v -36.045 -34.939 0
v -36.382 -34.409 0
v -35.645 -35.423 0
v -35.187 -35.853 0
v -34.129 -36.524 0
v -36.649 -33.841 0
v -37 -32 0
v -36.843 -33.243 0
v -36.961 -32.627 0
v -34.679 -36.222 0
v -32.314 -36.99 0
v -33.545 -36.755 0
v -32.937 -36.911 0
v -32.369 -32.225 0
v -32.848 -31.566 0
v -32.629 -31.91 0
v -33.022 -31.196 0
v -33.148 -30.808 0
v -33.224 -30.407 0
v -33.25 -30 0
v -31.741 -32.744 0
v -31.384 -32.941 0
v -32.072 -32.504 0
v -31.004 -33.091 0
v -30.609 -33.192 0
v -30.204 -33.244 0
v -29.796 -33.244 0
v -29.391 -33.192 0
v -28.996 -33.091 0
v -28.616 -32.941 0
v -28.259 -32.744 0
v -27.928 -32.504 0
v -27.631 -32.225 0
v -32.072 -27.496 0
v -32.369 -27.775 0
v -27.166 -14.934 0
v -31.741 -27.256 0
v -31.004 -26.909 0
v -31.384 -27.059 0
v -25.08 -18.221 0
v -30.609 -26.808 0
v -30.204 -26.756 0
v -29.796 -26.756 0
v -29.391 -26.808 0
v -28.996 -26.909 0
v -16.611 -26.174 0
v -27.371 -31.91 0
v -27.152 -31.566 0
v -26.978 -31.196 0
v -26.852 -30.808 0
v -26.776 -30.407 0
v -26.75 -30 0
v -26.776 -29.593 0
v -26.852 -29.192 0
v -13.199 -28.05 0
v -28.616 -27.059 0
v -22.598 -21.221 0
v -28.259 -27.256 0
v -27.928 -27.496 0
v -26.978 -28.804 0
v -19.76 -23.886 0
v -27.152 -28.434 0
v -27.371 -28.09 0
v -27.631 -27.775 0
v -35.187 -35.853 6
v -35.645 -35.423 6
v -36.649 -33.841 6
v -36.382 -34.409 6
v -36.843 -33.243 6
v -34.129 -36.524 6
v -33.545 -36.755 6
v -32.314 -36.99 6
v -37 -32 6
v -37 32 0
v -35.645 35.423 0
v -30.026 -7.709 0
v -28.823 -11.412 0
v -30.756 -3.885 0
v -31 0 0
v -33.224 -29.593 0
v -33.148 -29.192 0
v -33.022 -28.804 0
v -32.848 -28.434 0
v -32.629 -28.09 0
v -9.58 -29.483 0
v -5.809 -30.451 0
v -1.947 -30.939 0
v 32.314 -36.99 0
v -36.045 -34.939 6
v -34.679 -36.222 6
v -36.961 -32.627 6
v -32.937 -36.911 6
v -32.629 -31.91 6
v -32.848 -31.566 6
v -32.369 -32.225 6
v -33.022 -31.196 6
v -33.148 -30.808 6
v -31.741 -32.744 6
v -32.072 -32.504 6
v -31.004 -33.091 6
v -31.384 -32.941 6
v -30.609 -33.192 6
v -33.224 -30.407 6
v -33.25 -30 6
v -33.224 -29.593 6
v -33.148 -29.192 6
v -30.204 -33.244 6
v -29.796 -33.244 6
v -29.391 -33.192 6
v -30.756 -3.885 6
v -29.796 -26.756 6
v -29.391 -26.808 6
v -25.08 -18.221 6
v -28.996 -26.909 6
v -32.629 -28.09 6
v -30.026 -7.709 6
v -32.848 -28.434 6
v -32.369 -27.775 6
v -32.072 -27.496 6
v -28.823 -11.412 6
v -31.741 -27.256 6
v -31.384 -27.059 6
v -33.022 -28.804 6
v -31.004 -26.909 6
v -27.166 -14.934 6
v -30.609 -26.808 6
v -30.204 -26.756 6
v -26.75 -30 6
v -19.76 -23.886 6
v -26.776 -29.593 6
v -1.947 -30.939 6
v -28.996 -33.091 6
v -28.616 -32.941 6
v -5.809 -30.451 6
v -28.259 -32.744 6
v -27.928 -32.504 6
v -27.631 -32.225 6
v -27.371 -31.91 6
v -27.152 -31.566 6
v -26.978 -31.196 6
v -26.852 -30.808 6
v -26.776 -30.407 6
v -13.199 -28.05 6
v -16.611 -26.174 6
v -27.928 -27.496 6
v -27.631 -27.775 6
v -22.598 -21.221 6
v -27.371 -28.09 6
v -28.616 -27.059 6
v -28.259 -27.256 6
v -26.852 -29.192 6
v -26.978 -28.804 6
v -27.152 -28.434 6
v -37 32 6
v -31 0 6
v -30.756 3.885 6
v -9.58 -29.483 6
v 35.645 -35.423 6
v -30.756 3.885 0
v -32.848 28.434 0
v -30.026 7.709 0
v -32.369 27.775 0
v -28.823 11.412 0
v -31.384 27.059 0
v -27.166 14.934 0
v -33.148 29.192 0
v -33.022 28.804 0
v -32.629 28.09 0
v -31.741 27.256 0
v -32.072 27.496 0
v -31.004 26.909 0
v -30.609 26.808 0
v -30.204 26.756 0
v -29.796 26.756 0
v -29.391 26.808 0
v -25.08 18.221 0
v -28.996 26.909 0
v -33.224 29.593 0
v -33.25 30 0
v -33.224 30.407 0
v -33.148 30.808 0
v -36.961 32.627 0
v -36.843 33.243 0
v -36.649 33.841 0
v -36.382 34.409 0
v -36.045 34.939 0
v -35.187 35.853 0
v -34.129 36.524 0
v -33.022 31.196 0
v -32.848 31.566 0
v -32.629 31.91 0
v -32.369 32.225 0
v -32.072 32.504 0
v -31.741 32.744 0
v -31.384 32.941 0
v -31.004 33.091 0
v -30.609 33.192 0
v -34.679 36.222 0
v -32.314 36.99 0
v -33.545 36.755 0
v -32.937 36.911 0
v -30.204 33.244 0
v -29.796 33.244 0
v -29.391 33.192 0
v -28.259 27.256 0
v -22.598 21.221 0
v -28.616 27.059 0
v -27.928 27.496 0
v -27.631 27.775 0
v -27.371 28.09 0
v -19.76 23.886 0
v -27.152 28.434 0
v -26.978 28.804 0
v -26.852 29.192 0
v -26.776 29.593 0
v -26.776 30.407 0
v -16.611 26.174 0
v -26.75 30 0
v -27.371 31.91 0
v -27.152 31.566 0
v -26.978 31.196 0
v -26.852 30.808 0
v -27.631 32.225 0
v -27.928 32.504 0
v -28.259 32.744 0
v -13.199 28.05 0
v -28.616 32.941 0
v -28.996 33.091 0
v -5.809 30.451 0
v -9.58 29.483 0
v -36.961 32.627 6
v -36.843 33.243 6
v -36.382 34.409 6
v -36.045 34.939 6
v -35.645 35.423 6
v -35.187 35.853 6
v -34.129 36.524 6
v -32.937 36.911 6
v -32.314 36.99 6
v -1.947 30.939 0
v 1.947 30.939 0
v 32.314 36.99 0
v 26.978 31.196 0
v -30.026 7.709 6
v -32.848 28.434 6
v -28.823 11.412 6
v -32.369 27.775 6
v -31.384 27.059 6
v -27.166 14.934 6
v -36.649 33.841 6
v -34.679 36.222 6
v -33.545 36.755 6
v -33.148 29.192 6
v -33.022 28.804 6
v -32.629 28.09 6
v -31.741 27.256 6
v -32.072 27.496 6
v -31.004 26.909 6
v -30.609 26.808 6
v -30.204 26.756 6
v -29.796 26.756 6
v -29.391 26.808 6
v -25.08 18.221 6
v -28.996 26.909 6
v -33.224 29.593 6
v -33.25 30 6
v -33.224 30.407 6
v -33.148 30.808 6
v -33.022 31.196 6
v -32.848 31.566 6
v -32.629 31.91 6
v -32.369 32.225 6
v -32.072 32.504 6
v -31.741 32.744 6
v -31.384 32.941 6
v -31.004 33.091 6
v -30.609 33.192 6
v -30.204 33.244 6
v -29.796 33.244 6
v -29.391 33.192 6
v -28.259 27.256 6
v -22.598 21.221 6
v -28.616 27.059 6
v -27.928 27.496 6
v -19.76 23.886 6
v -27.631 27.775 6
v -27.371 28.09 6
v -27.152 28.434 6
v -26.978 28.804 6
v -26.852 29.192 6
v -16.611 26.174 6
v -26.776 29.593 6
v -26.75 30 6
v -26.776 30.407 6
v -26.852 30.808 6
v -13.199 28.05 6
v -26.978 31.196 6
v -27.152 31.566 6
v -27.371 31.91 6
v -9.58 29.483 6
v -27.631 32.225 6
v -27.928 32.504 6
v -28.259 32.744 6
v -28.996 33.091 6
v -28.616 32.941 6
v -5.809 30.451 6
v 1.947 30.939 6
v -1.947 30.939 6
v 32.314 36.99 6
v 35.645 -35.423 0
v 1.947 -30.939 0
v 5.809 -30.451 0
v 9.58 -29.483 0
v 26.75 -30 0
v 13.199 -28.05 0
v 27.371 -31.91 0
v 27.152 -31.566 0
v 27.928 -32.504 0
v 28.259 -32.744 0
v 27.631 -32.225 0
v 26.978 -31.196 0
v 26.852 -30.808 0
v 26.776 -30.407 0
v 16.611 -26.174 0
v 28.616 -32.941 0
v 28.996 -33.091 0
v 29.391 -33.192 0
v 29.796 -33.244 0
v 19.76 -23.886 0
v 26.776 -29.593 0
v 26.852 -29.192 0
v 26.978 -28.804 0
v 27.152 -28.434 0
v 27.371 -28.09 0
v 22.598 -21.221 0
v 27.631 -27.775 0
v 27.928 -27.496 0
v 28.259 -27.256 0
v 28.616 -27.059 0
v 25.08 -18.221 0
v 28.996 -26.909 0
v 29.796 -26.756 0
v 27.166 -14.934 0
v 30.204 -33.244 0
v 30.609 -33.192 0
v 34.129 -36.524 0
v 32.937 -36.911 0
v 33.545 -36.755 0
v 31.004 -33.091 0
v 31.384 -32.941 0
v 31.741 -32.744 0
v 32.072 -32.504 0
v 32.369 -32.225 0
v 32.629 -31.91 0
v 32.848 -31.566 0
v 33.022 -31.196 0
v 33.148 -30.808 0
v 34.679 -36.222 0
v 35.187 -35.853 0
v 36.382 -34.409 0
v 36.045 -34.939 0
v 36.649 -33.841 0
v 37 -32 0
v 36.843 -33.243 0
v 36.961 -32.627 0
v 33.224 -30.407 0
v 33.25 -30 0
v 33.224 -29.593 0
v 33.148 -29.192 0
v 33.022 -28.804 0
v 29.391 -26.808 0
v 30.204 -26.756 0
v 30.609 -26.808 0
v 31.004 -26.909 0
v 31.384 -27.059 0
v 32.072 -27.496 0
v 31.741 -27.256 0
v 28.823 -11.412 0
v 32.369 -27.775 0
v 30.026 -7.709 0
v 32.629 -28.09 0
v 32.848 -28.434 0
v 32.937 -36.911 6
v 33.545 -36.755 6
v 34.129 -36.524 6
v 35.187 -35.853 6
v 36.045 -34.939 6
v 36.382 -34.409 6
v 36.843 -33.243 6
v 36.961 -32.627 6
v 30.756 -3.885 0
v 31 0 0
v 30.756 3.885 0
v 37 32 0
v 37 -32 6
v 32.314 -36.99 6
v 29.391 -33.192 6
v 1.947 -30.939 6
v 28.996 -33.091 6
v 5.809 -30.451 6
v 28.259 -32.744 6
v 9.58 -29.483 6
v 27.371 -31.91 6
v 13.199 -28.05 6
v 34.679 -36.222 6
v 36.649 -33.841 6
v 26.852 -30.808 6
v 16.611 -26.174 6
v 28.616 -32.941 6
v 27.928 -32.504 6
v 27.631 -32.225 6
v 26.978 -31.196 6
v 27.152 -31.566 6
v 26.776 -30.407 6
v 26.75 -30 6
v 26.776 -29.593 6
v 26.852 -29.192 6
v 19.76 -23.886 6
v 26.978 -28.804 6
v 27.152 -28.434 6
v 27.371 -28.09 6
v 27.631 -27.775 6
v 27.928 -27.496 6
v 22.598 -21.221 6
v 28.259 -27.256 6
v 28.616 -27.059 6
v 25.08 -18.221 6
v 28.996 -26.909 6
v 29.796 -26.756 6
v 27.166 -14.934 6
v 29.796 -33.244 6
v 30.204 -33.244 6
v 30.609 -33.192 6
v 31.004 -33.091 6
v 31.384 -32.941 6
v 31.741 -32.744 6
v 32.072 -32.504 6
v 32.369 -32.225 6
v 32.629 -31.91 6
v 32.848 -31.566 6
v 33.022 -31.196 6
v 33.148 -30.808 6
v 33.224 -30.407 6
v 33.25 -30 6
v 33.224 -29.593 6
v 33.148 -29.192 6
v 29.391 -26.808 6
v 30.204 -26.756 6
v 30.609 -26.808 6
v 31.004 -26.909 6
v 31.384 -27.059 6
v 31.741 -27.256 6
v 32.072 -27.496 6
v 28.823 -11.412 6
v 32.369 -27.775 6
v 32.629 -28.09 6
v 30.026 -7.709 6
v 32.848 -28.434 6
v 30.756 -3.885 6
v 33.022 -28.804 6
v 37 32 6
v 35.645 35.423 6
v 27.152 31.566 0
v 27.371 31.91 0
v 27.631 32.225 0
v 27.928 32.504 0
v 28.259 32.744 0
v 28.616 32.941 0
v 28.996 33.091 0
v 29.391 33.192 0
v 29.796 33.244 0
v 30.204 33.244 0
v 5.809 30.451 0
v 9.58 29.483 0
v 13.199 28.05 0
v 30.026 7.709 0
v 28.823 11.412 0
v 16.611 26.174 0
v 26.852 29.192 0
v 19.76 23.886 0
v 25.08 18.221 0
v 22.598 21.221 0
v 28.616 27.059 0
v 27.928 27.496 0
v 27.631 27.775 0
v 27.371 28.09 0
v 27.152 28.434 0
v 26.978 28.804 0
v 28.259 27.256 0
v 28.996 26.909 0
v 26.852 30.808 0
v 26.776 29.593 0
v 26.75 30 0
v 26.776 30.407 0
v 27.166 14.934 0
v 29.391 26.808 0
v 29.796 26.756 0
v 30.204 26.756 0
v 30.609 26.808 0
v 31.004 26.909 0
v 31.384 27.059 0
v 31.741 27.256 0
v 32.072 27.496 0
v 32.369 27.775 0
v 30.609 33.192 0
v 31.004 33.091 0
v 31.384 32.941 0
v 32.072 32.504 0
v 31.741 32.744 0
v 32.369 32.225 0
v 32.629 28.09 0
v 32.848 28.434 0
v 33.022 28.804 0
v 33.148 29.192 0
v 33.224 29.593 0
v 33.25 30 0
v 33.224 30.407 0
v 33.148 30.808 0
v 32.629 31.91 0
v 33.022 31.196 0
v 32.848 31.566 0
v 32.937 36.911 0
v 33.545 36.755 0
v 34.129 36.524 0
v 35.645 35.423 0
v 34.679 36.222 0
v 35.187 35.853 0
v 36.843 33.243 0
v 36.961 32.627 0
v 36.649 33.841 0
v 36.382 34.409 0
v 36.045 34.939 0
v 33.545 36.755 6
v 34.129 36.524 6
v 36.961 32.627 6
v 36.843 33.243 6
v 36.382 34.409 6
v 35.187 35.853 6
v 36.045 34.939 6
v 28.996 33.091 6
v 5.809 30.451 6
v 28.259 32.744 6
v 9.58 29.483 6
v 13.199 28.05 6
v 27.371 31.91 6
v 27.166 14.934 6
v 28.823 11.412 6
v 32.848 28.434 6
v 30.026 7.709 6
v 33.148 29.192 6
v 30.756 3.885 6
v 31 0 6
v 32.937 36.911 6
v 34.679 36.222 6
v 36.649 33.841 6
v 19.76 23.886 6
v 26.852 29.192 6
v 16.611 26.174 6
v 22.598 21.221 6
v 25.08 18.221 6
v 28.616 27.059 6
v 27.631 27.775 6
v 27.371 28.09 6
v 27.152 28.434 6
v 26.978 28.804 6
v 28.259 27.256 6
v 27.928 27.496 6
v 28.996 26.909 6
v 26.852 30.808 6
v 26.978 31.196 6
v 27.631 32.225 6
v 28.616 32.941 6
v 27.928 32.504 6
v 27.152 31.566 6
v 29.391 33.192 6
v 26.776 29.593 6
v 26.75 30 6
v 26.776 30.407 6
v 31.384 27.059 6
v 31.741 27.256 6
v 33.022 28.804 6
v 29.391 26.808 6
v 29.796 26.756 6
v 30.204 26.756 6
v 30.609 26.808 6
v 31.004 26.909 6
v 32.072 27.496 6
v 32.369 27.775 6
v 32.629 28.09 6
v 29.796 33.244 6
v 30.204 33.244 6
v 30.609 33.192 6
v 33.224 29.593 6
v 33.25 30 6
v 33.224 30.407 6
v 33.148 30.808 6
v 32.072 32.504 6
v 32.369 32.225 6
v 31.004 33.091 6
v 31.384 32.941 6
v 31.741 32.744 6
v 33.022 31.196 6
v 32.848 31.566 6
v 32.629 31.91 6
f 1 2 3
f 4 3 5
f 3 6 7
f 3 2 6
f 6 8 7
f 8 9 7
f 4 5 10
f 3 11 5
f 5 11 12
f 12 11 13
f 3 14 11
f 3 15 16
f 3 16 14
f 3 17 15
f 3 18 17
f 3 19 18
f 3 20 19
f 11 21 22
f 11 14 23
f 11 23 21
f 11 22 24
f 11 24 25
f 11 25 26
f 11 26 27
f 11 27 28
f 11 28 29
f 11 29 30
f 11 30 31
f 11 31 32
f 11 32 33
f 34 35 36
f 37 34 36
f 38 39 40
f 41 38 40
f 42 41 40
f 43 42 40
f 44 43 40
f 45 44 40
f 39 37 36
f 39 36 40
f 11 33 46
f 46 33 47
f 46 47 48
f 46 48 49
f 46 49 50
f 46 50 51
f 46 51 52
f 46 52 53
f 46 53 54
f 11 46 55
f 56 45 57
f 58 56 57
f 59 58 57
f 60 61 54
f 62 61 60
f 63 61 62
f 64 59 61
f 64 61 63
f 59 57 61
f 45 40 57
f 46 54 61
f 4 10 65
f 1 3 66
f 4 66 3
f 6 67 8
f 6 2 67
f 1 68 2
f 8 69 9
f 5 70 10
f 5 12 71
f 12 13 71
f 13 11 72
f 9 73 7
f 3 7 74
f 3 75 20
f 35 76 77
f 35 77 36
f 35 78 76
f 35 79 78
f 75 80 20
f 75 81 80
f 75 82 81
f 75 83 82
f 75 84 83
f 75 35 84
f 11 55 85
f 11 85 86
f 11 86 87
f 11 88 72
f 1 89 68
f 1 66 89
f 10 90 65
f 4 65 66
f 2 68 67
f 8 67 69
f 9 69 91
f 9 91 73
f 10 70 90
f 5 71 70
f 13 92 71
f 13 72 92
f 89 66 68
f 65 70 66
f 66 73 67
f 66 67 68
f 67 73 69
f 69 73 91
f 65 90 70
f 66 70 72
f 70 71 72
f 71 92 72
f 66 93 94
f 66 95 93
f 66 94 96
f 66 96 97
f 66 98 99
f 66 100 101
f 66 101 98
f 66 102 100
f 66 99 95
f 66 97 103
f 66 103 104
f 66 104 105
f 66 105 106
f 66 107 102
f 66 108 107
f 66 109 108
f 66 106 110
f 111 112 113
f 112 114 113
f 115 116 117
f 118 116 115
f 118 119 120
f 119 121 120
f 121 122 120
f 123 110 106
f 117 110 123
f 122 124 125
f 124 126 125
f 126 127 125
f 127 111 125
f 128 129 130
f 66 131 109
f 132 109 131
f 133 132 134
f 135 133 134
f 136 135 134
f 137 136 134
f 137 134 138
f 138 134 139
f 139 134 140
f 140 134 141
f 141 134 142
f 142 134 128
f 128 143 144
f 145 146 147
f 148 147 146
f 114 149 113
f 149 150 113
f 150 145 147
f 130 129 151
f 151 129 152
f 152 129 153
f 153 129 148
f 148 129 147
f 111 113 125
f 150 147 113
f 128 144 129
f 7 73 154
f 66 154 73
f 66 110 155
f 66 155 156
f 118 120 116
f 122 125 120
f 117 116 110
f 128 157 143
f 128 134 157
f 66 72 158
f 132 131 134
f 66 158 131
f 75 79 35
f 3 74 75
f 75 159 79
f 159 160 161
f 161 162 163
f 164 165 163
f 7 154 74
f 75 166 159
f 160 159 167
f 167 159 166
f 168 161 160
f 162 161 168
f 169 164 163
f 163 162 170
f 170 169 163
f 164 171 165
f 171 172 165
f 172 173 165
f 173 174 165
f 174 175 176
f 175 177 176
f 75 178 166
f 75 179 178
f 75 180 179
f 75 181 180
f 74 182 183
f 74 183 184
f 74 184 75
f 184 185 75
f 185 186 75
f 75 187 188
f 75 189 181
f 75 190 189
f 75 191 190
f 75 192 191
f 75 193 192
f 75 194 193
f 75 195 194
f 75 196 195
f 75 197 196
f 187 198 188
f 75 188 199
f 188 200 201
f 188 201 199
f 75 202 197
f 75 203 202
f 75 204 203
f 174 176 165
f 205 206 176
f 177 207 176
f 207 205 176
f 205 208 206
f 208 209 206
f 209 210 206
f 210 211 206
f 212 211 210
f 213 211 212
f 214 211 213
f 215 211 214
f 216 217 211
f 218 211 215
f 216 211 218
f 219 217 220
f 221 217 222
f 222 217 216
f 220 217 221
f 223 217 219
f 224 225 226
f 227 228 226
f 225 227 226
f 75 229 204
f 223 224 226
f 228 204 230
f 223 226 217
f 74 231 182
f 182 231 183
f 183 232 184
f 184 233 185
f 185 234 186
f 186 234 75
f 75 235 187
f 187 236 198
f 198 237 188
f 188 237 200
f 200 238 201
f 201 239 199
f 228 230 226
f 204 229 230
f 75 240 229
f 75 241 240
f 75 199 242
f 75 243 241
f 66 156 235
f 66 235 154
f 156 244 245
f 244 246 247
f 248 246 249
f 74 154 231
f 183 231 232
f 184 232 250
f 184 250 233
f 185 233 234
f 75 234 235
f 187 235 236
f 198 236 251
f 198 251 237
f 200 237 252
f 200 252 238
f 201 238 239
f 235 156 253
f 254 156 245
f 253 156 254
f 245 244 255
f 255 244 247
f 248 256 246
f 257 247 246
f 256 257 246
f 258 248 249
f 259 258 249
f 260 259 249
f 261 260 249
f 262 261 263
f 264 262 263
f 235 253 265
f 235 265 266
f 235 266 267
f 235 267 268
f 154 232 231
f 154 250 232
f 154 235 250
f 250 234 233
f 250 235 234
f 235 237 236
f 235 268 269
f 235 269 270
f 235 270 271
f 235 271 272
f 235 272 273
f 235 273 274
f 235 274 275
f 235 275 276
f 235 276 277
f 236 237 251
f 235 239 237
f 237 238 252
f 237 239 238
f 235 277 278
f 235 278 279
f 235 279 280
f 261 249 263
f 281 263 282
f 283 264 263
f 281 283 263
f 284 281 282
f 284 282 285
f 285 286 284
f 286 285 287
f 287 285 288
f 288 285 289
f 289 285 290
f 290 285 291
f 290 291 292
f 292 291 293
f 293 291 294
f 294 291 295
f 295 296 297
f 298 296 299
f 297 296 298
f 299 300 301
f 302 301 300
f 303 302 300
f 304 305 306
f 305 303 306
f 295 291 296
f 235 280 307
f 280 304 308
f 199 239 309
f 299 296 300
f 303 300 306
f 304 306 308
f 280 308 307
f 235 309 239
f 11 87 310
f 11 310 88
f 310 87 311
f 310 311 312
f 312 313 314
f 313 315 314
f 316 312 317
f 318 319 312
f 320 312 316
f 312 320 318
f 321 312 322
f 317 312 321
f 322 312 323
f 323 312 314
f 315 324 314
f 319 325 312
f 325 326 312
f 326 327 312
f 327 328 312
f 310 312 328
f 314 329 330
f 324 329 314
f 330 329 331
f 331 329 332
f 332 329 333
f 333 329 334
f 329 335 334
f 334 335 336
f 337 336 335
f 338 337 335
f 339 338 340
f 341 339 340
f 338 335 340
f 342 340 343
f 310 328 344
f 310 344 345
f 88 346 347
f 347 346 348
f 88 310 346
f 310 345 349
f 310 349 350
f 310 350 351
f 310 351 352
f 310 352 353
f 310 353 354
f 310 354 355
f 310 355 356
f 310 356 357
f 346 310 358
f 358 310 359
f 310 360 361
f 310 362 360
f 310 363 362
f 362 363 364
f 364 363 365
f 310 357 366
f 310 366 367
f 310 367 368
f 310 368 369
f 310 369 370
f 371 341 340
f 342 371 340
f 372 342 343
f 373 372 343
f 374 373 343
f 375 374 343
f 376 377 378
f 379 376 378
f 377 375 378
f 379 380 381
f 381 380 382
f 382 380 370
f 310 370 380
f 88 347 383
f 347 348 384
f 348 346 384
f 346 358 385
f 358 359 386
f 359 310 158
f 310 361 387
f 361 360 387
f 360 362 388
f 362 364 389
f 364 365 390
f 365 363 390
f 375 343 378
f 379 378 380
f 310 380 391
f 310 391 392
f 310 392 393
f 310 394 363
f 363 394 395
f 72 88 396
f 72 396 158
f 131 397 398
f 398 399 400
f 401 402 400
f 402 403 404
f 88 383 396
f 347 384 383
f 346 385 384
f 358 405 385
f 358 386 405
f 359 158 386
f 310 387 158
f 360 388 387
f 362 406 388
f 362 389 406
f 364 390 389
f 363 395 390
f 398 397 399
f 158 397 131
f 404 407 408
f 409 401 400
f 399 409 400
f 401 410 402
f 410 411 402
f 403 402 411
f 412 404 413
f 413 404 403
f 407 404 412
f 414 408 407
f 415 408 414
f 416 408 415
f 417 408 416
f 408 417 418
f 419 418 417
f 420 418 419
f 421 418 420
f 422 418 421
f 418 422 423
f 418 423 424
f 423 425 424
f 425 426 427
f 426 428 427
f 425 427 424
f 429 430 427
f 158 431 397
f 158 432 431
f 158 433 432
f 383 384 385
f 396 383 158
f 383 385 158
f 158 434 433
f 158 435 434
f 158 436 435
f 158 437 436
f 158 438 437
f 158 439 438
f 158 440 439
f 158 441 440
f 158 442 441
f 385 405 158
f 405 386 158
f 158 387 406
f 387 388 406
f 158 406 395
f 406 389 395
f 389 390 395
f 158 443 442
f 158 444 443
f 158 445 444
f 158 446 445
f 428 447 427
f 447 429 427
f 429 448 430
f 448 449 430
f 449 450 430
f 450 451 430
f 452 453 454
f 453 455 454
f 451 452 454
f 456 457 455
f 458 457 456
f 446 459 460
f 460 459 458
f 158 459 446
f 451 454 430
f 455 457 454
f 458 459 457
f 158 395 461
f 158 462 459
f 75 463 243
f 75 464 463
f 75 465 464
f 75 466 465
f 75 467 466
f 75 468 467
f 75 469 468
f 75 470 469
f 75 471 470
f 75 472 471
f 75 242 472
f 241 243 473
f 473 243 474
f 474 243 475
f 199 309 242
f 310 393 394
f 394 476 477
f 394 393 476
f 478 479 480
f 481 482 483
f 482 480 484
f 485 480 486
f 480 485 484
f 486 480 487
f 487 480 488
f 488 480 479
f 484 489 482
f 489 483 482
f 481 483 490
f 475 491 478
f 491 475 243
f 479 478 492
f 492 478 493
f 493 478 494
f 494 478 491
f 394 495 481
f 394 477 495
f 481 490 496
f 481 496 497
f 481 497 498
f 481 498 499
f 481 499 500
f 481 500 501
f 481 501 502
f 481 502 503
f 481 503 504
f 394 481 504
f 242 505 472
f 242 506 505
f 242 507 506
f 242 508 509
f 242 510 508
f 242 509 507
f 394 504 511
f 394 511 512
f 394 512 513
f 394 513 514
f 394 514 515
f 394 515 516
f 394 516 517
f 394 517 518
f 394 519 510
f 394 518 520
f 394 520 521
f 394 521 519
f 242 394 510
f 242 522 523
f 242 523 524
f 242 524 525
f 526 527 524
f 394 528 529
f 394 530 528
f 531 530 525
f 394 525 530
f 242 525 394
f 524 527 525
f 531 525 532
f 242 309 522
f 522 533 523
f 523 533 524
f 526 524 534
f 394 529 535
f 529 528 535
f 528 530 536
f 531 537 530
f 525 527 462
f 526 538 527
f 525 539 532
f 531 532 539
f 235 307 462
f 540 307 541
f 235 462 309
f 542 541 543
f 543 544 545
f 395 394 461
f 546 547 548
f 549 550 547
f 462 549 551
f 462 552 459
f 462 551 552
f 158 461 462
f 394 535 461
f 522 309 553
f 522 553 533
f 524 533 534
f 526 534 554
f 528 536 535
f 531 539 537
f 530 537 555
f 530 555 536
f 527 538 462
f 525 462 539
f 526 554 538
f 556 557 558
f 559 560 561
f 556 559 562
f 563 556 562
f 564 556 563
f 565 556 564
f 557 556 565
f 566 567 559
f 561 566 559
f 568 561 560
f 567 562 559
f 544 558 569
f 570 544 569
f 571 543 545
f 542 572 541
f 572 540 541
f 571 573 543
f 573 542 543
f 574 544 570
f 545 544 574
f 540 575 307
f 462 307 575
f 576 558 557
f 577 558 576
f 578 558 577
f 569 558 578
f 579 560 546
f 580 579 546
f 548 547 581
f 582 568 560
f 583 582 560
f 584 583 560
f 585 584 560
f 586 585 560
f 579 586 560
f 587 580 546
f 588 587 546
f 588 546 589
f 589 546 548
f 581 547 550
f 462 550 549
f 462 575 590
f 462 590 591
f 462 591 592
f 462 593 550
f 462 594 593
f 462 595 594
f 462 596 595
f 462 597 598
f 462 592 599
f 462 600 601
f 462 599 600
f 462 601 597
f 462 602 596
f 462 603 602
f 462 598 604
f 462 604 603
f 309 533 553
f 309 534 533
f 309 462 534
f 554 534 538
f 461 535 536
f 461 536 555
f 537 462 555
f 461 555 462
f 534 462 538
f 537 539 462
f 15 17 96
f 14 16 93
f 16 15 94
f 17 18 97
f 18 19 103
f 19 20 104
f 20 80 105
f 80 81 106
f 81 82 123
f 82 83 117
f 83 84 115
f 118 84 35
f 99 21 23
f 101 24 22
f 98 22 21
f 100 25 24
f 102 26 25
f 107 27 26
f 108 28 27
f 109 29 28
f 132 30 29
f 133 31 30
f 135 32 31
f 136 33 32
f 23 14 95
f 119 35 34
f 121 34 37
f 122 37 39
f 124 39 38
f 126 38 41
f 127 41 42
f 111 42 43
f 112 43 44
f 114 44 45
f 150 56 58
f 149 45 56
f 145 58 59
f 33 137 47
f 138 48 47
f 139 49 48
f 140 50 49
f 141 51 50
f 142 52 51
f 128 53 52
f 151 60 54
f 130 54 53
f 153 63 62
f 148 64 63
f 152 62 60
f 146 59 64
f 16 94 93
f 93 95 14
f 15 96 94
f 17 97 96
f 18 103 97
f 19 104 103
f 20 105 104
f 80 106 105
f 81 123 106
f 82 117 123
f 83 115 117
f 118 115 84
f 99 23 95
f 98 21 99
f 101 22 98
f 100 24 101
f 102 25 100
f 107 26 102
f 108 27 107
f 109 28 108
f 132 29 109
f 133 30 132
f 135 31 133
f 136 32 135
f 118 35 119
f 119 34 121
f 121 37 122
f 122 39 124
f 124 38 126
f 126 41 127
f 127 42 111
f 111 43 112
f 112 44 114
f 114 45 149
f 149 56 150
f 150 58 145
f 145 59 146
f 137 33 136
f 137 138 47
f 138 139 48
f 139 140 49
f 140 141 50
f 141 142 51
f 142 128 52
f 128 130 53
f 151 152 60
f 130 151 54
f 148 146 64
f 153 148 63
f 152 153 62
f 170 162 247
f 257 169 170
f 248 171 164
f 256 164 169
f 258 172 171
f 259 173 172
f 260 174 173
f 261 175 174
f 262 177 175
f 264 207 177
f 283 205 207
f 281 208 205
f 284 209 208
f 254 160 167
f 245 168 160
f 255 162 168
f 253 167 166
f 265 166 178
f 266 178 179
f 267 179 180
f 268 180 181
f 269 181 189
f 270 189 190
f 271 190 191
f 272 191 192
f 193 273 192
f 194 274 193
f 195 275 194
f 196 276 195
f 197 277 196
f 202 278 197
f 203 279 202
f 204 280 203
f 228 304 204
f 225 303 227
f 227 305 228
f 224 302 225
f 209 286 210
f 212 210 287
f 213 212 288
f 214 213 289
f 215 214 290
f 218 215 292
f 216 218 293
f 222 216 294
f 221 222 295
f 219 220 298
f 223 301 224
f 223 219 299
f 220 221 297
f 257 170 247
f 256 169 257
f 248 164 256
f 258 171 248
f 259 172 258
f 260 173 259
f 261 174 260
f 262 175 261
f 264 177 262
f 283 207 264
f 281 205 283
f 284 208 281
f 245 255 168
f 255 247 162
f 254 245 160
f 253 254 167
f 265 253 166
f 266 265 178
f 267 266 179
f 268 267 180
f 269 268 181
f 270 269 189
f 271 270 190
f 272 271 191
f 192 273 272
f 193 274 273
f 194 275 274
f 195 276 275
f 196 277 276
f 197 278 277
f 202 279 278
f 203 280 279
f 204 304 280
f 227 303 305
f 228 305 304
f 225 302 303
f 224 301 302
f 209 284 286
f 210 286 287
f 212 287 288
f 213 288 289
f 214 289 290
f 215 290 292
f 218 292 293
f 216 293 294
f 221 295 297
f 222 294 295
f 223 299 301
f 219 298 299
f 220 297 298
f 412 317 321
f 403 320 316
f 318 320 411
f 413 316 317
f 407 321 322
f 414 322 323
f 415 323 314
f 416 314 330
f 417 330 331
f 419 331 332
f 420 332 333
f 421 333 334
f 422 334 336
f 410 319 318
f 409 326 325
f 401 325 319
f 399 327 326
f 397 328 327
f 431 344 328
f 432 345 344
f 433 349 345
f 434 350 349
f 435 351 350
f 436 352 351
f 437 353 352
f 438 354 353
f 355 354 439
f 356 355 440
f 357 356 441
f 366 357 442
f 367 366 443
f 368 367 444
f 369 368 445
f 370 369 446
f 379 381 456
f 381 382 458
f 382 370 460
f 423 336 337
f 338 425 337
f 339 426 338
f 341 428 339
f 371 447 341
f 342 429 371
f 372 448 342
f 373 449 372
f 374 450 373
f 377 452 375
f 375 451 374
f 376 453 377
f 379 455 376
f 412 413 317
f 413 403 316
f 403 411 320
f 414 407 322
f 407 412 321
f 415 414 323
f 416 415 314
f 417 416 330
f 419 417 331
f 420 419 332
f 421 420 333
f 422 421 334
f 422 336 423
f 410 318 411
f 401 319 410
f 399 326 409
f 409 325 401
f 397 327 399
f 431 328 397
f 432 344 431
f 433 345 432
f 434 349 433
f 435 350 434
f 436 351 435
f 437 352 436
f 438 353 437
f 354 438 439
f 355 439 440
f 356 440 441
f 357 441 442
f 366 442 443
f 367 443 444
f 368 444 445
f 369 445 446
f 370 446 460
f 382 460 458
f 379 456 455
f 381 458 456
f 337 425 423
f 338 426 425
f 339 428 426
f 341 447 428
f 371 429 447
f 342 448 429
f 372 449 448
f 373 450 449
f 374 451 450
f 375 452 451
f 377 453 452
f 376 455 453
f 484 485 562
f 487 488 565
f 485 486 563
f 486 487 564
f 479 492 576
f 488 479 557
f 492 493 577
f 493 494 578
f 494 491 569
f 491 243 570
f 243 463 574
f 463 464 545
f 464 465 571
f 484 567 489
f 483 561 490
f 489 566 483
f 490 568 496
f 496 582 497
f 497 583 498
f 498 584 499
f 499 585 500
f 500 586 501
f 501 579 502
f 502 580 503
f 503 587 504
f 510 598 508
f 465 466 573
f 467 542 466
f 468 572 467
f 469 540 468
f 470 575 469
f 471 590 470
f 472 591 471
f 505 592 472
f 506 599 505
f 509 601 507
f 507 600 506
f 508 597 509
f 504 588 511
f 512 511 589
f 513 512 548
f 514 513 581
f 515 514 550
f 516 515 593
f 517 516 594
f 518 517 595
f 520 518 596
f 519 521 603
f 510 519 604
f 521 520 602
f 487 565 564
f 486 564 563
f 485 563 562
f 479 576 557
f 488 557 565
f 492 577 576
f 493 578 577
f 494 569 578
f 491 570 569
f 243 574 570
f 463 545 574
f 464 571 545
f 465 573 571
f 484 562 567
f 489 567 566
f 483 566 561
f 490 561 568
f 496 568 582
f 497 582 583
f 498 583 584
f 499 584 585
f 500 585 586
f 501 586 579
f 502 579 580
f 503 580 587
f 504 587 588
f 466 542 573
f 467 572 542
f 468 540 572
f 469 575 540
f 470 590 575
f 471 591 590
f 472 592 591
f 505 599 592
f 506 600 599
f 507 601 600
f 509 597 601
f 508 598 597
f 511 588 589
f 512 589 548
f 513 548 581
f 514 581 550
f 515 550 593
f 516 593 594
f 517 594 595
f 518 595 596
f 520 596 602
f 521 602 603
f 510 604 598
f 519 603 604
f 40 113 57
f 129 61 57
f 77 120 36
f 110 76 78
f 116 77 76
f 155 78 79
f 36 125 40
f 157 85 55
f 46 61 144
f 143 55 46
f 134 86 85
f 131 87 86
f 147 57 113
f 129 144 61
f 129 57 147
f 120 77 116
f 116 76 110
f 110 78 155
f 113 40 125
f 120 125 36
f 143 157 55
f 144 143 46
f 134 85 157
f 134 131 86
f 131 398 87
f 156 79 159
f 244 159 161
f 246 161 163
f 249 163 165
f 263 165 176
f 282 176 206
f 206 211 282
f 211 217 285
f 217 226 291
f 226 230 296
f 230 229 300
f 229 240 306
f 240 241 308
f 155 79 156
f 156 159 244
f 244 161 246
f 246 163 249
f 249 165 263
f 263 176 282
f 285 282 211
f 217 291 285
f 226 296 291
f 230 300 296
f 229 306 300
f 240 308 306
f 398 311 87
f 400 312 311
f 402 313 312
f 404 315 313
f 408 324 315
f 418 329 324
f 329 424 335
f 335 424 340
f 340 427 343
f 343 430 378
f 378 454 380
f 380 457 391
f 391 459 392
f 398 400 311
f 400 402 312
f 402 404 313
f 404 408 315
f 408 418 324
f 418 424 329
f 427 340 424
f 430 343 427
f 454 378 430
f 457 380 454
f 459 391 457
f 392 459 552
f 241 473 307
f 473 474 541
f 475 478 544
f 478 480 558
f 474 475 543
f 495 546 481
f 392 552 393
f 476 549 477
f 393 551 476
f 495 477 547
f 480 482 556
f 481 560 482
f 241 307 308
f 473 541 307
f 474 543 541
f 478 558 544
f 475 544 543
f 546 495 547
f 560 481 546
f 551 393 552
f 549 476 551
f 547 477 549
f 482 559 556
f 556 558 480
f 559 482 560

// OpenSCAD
$fn = 50;

difference() {
	union() {
		hull() {
			translate(v = [-32.0, 32.0, 0]) {
				cylinder(h = 6, r = 5);
			}
			translate(v = [32.0, 32.0, 0]) {
				cylinder(h = 6, r = 5);
			}
			translate(v = [-32.0, -32.0, 0]) {
				cylinder(h = 6, r = 5);
			}
			translate(v = [32.0, -32.0, 0]) {
				cylinder(h = 6, r = 5);
			}
		}
	}
	union() {
		translate(v = [-30.0, -30.0, -100.0]) {
			cylinder(h = 200, r = 3.25);
		}
		translate(v = [-30.0, 30.0, -100.0]) {
			cylinder(h = 200, r = 3.25);
		}
		translate(v = [30.0, -30.0, -100.0]) {
			cylinder(h = 200, r = 3.25);
		}
		translate(v = [30.0, 30.0, -100.0]) {
			cylinder(h = 200, r = 3.25);
		}
		translate(v = [-30.0, -30.0, -100.0]) {
			cylinder(h = 200, r = 1.8);
		}
		translate(v = [-30.0, 30.0, -100.0]) {
			cylinder(h = 200, r = 1.8);
		}
		translate(v = [30.0, -30.0, -100.0]) {
			cylinder(h = 200, r = 1.8);
		}
		translate(v = [30.0, 30.0, -100.0]) {
			cylinder(h = 200, r = 1.8);
		}
		cylinder(h = 6, r = 31.0);
	}
}
